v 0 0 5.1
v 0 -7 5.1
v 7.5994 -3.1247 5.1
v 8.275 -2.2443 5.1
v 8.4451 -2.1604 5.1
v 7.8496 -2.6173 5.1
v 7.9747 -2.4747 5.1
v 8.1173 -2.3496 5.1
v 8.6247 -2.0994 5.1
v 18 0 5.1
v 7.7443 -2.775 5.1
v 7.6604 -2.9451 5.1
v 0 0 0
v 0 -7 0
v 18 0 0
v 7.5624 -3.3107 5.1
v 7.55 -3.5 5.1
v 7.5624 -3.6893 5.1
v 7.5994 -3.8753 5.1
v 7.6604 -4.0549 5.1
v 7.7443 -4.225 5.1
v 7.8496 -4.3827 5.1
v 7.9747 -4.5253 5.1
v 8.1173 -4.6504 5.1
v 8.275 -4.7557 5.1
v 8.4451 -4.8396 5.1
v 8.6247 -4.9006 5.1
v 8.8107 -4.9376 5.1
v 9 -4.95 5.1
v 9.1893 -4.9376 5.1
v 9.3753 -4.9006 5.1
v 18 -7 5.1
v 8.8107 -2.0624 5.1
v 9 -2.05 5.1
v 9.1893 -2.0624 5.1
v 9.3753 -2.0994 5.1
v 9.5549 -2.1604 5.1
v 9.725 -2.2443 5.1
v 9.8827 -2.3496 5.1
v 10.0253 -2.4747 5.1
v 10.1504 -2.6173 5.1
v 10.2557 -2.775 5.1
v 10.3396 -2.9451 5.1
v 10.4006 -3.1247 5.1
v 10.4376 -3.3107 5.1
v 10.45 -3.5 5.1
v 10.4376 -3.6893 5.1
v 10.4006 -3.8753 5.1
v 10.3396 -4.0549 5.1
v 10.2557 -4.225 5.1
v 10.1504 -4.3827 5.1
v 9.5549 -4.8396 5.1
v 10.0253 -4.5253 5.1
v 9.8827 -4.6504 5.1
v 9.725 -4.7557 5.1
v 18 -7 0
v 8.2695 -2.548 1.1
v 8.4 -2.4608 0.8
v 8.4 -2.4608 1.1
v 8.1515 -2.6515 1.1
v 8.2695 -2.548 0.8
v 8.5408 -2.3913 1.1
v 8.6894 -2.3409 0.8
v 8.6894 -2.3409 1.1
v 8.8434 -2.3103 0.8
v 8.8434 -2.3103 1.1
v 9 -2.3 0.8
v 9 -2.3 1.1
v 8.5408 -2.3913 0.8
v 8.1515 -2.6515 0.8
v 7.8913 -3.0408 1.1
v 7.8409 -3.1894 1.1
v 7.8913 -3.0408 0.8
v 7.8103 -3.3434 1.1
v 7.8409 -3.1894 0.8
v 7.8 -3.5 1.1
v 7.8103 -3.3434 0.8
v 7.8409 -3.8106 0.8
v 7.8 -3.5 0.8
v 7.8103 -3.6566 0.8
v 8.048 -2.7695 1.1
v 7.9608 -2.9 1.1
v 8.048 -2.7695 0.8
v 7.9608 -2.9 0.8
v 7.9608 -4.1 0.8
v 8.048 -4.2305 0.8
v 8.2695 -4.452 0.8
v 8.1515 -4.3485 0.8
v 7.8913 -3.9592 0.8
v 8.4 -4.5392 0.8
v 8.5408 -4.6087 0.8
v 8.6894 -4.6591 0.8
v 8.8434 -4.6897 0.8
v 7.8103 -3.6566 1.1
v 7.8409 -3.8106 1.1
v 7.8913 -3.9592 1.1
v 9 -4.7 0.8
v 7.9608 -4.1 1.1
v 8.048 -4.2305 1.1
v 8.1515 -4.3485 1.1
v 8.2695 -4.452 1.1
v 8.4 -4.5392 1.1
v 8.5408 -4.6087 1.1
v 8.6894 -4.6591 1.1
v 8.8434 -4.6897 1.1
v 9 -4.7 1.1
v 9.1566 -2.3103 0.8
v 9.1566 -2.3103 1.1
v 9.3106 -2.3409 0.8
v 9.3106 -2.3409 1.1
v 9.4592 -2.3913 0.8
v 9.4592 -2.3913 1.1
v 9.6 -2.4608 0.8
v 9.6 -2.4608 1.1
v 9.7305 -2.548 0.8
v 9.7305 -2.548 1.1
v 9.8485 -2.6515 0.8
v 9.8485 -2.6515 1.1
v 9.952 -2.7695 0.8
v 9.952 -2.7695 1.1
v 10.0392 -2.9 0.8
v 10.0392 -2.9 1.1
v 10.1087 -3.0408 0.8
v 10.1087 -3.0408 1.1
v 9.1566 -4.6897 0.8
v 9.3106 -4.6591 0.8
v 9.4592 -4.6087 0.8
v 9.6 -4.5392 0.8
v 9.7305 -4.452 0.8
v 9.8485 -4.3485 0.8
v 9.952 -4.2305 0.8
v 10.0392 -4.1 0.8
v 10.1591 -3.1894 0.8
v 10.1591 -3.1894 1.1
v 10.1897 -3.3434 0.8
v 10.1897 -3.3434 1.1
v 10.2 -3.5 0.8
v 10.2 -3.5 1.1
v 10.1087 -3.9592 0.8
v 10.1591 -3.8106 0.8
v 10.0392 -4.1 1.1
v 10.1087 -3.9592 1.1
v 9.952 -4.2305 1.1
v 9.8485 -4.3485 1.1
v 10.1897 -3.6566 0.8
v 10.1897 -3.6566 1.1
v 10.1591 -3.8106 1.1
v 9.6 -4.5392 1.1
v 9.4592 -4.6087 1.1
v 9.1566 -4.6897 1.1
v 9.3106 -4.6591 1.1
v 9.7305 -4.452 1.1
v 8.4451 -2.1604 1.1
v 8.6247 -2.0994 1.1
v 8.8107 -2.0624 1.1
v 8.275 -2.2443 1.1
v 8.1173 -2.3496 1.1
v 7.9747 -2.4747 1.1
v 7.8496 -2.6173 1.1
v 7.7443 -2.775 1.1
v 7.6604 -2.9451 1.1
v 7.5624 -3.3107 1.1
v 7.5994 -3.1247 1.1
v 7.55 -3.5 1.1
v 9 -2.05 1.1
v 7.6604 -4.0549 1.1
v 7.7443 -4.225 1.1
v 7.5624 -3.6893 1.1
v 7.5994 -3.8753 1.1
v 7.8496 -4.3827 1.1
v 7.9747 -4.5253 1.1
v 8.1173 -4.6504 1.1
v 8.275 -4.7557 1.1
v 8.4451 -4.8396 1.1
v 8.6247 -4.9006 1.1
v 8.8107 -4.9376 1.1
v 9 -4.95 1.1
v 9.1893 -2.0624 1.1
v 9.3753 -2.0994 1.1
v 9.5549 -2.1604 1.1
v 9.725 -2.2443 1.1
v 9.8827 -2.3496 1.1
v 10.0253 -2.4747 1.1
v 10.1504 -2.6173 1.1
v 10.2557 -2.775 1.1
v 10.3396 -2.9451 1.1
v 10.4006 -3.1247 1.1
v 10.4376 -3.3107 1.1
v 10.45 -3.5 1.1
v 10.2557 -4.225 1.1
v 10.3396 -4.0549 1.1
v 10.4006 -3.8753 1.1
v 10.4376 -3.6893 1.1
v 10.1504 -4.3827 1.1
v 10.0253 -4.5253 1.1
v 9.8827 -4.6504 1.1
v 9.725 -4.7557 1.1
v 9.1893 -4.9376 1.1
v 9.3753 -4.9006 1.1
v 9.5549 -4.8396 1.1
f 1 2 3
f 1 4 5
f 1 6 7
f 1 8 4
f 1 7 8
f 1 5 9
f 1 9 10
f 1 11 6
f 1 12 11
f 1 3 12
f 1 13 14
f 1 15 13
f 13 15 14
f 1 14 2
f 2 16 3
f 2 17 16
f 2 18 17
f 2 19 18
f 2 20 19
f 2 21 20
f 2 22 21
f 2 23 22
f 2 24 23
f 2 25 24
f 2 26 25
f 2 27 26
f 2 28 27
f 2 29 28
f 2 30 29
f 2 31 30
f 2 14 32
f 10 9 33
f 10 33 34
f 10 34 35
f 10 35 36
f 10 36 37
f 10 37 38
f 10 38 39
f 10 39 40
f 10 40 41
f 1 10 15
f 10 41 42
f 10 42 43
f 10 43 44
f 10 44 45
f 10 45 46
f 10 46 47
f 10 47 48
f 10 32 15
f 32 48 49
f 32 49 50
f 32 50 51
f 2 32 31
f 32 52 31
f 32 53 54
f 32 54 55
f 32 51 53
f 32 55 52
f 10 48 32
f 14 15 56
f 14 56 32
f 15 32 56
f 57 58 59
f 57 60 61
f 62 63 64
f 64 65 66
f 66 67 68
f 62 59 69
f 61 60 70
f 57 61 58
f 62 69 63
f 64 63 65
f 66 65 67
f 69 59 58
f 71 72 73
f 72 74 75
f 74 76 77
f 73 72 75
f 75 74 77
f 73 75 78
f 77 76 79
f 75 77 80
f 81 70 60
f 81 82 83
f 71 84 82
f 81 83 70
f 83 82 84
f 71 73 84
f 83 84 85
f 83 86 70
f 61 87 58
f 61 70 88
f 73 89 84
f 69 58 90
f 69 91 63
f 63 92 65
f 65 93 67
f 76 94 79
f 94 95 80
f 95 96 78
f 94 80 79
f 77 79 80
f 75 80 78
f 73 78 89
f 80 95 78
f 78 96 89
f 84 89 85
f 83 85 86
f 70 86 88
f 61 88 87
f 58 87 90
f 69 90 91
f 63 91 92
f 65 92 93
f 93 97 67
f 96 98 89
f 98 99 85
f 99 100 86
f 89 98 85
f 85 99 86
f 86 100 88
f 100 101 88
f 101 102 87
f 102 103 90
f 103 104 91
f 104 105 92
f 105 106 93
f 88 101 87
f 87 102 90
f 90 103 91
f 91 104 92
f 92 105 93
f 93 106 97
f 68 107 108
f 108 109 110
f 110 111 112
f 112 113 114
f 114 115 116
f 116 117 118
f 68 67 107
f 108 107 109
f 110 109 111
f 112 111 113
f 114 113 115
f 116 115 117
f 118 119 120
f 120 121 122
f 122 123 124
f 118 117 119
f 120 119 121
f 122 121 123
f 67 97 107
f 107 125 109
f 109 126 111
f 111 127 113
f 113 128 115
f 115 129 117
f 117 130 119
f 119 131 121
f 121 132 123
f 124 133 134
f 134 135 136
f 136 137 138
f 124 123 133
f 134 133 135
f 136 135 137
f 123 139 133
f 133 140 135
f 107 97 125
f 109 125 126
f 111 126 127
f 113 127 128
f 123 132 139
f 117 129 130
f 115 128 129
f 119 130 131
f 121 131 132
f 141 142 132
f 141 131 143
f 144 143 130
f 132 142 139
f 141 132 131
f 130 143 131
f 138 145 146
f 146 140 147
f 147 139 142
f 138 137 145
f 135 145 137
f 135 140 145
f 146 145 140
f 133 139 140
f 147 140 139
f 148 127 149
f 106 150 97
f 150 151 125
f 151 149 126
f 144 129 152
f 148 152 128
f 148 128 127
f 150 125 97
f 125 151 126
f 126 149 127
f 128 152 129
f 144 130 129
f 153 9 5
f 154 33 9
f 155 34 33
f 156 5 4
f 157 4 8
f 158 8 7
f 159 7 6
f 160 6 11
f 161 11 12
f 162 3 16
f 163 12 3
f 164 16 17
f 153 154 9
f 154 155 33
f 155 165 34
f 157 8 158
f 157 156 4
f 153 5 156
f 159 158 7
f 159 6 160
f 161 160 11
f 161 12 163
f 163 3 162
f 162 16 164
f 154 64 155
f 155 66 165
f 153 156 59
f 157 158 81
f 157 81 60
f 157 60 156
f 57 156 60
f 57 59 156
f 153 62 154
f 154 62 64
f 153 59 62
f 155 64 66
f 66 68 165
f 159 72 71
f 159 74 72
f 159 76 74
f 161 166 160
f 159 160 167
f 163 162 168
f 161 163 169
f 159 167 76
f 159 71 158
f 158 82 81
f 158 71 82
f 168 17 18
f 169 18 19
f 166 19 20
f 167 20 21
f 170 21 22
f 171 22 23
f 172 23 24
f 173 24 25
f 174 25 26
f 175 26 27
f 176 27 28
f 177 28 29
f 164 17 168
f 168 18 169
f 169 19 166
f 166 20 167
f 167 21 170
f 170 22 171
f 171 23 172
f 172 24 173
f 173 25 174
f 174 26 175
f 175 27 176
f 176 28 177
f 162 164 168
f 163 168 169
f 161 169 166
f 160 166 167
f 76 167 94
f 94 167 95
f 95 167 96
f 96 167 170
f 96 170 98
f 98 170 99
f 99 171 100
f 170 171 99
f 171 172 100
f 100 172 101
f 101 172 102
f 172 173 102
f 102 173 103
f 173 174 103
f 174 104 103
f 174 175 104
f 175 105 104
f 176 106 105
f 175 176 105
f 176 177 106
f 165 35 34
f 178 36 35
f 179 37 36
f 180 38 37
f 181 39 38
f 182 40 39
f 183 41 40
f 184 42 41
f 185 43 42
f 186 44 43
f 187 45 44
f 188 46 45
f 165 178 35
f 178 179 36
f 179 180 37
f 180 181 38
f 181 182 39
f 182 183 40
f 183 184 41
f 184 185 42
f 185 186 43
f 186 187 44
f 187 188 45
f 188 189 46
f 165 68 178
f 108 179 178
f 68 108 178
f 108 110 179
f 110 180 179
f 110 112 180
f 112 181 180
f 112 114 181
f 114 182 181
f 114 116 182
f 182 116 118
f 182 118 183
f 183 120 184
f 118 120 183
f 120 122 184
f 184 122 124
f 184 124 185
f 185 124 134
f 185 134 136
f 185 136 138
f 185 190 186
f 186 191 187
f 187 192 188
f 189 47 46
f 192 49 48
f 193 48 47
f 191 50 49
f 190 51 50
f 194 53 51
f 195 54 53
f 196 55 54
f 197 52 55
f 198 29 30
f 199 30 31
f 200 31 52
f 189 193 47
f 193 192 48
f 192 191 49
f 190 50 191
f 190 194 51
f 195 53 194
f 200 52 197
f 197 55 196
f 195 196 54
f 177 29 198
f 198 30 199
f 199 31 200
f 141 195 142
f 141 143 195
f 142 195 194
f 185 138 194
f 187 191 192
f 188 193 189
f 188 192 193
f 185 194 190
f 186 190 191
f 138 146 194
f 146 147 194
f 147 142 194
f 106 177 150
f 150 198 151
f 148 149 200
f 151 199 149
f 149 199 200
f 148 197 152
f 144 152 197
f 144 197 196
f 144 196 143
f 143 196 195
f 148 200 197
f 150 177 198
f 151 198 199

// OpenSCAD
// file: ../../../cad/v3/hardware.scad
include <params.scad>
use <enclosure.scad>
// PROVISIONAL purchased component envelopes; not production part drawings.
module motor() {
 union() {
  translate([screw_x-6,motor_front-motor_l,motor_bottom]) cube([12,motor_l,10]);
  yrod(screw_x,motor_front-0.1,axis_z,shaft_d,shaft_l+0.1);
  for(x=[screw_x-3,screw_x+3]) translate([x-0.5,motor_front-motor_l-2,motor_bottom+4.5]) cube([1,2.1,1]);
 }
}
module shaft() { yrod(screw_x,motor_front,axis_z,shaft_d,shaft_l); }
module drive_nut(t=0) {
 difference() {
  translate([screw_x,carriage_back+t+nut_slot_y+0.1,axis_z]) rotate([-90,0,0]) union() {
   cylinder(d=nut_af/cos(30),h=nut_height,$fn=6);
   cylinder(d=nut_flange_d,h=nut_flange_t);
  }
  yrod(screw_x,carriage_back+t+nut_slot_y,axis_z,shaft_d+0.2,nut_height+0.2);
 }
}
module battery_holder(raise=0) {
 // Conservative single envelope including cell, contacts and holder.
 translate([93.2,-52,4.5+raise]) cube([22,74,21]);
}
module esp() {
 union() {
  translate([77.5,28,8.3]) cube([17.8,22.5,1.2]);
  translate([78.5,29,9.5]) cube([15.8,20.5,5]);
  translate([81.5,47,9.5]) cube([9,5,3.3]);
 }
}
module power_board() { translate([99,29,8.3]) cube([15,20,7.2]); }
module bridge_board() { translate([98.5,29,20.3]) cube([15,20,7]); }
module oled() {
 union() {
  translate([87.6,53.5,21.5]) cube([27.8,1.6,27.3]);
  translate([88.15,55.1,25]) cube([26.7,1.4,19.3]);
  translate([96.5,50.5,46]) cube([10,3,2.8]);
 }
}
module button() {
 union() {
  xrod(button_panel_x-button_body_l,button_y,button_z,button_body_d,button_body_l);
  xrod(button_panel_x,button_y,button_z,button_flange_d,2);
  xrod(button_panel_x+2,button_y,button_z,12.9,button_face_l-2);
  // Candidate fastening nut envelope; actual nut diameter/thickness to measure.
  difference() {
   xrod(button_panel_x-6,button_y,button_z,17.8,3);
   xrod(button_panel_x-6.1,button_y,button_z,button_hole_d,3.2);
  }
  // Two terminals only; solder and bend radius need physical confirmation.
  for(y=[button_y-2.425,button_y+2.425])
   translate([button_panel_x-button_body_l-button_terminal_l,y-.3,button_z-1]) cube([button_terminal_l,.6,2]);
 }
}
module acrylic() { translate([window_x0-2,window_y0-2,window_pane_z]) cube([window_x1-window_x0+4,window_y1-window_y0+4,window_pane_t]); }
module hinge_pin() { xrod(hinge_pin_x,hinge_y,hinge_z,2,hinge_pin_len); }
module thread_insert(x,y,z) {
 difference() {
  zhole(x,y,z,insert_od,insert_len);
  zhole(x,y,z-.1,2.05,insert_len+.2);
 }
}
module inserts_fixed() {
 for(p=battery_screws) thread_insert(p[0],p[1],2.9);
 for(x=keeper_x) thread_insert(x,keeper_y,44.3);
}
module inserts_lid() {
 for(p=window_clamps) thread_insert(p[0],p[1],window_ear_top);
}
module battery_connector() { translate([91.5,22,12.5]) cube([4.3,5,5]); }
module motor_pads() {
 // 0.3 mm compressed adhesive shim specification, not unspecified empty space.
 translate([78.5,motor_front-motor_l+.1,motor_bottom-0.3]) cube([12,motor_l-.2,0.3]);
 translate([78.5,motor_front-motor_l+.1,motor_top]) cube([12,motor_l-.2,0.3]);
 difference() {
  translate([78.5,-15,motor_bottom]) cube([12,0.3,10]);
  yrod(screw_x,-15.1,axis_z,4.7,0.6);
 }
 // Rear pad clears the two solder terminals.
 difference() {
  translate([78.5,motor_front-motor_l-.3,motor_bottom]) cube([12,0.3,10]);
  translate([80,motor_front-motor_l-.4,motor_bottom+4]) cube([9,0.5,2]);
 }
}
module board_pads() {
 translate([77.5,28,7.4]) cube([17.8,22.5,0.9]);
 translate([99,29,7.4]) cube([15,20,0.9]);
 translate([98.5,29,19.8]) cube([15,20,0.5]);
}

// Illustrative screw envelopes. Intentional pilot-thread interference is excluded
// from solid collision assertions. They remain in preview, BOM and total bounds.
module screw_down(x,y,top,len,d=2,flush=false) {
 color([0.45,0.47,0.5]) {
  zhole(x,y,top-len,d,len);
  if(flush) translate([x,y,top-1.3]) cylinder(d1=d,d2=4,h=1.3);
  else zhole(x,y,top,d==3?5.5:3.6,d==3?2:1.4);
 }
}
// Canonical fastener table: x,y,z,length,diameter,flush,rotationX,headless,owners.
// Preview and interference verification consume this SAME table.
// Stable connection names: keep existing names when adapting module brackets.
function fastener_ids(kind="fixed") = kind=="drive" ? ["F-nut-cap-left","F-nut-cap-right"] :
 kind=="lid" ? ["F-latch-left","F-latch-right","F-window-rear-left","F-window-rear-right","F-window-front-left","F-window-front-right"] :
 ["F-lock-rear-left","F-lock-rear-right","F-lock-front-left","F-lock-front-right",
 "F-guide-rear-left","F-guide-rear-right","F-guide-front","F-motor-left","F-motor-right",
 "F-tray-left","F-tray-right","F-deck-left","F-deck-right","F-esp-left","F-esp-right",
 "F-driver-left","F-driver-right","F-oled-left","F-oled-right",
 "F-battery-rear-left","F-battery-rear-right","F-battery-front-left","F-battery-front-right",
 "F-hinge-left","F-hinge-right"];
function fastener_specs(kind="fixed",t=0) = kind=="drive" ?
 [for(x=[screw_x-4.5,screw_x+4.5]) [x,carriage_back+t-0.2,46,6,2,false,0,false,["nut_cap","nut_carriage"]]] :
 kind=="lid" ? concat(
 [for(x=[93.5,112.5]) [x,8.5,45.2,8,3,false,180,false,["latch_retainer","lid"]]],
 [for(p=window_clamps) [p[0],p[1],window_inner_z,6,2,true,180,false,["window_grille","lid"]]]) :
 concat(
 [for(p=lock_mounts) [p[0],p[1],32.4,6,2,false,0,false,["lock_base","base_box"]]],
 [for(p=guide_screws) [p[0],p[1],44.9,8,2,false,0,false,["guide_cap","lock_base"]]],
 [for(p=motor_screws) [p[0],p[1],motor_clamp_z+2,8,2,false,0,false,["motor_clamp","lock_base"]]],
 [for(p=tray_screws) [p[0],p[1],7.4,4,2,false,0,false,["electronics_tray","base_box"]]],
 [for(p=deck_screws) [p[0],p[1],19.8,6,2,false,0,false,["upper_deck","electronics_tray"]]],
 [for(x=[76.2,96.7]) [x,39,16.8,6,2,false,0,false,["esp_clip","electronics_tray"]]],
 [for(x=[97,115]) [x,38,29.6,6,2,false,0,false,["upper_clip","upper_deck"]]],
 [for(x=[86.8,115.8]) [x,56.3,51,6,2,true,0,false,["oled_bridge","base_box"]]],
 [for(p=battery_screws) [p[0],p[1],0,8,2,true,180,false,["battery_hatch","base_box"]]],
 [for(i=[0:1]) [keeper_x[i],keeper_y,51.1,6,2,true,0,false,[i==0?"hinge_guard_left":"hinge_guard_right","base_box","inserts_fixed"]]]);
module render_screw(s) {
 translate([s[0],s[1],s[2]]) rotate([s[6],0,0])
 if(s[7]) zhole(0,0,-s[3],s[4],s[3]);
 else screw_down(0,0,0,s[3],s[4],s[5]);
}
module fixed_fasteners() { for(s=fastener_specs("fixed")) render_screw(s); }
module moving_fasteners(t=0) { for(s=fastener_specs("drive",t)) render_screw(s); }
module lid_fasteners() { for(s=fastener_specs("lid")) render_screw(s); }
// file: ../../../cad/v3/electronics.scad
include <params.scad>

module electronics_tray() {
 nominal_difference() {
  union() {
   cube_at([74.5,25.5,5.4],[42,27,2]);
   cube_at([74.5,25.5,7.3],[2.5,27,0.7]);
   cube_at([114,25.5,7.3],[2.5,27,0.7]);
   for(p=deck_screws) translate([p[0],p[1],7.3]) cylinder(r=1.3,h=10.7);
   for(x=[76.2,96.7]) cube_at([x-1.2,37,7.3],[2.4,4,7.5]);
  }
  for(p=tray_screws) pilot(p,5.2,8.2,2.4);
  for(x=[90,117]) zhole(x,24,5.2,6.4,3.2);
  for(p=deck_screws) pilot(p,13,18.2,1.7);
  for(x=[76.2,96.7]) zhole(x,39,9.8,1.7,5.2);
  // Tie slots for the lower power board; underside remains accessible off-box.
  for(x=[99.5,112.75]) cube_at([x,33,5.2],[tie_slot_width,8,3.2]);
 }
}
module upper_deck() {
 nominal_difference() {
  union() {
   cube_at([96,25.3,18],[21,27.2,1.8]);
   cube_at([96,27,19.7],[2.3,24,1.8]);
   cube_at([114.3,27,19.7],[2.7,24,1.8]);
   for(x=[97,115]) cube_at([x-1.3,36,19.7],[2.6,4,7.9]);
  }
  for(p=deck_screws) pilot(p,17.8,20,2.4);
  zhole(96.7,39,17.8,4,0.6);
  for(x=[97,115]) zhole(x,38,22.3,1.7,5.5);
 }
}
module esp_clip() {
 nominal_difference() {
  cube_at([74.5,37,14.8],[24,4,2]);
  for(x=[76.2,96.7]) zhole(x,39,14.6,2.4,2.4);
 }
}
module upper_clip() {
 nominal_difference() {
  cube_at([95.5,36,27.6],[21.5,4,2]);
  for(x=[97,115]) zhole(x,38,27.4,2.2,2.4);
 }
}
module oled_bridge() {
 nominal_difference() {
  cube_at([84.3,52.5,49.2],[34,6.1,1.8]);
  for(x=[86.8,115.8]) {
   zhole(x,56.3,49,2.4,2.2);
   countersink(x,56.3,49.7,2.4,4,1.3);
  }
 }
}
// file: ../../../cad/v3/lock.scad
include <params.scad>

module lock_base() {
 nominal_difference() {
  union() {
   cube_at([75,-46,lock_floor],[41,68,3]);
   // Continuous independent bolt support: bed, keyed rail, removable roof.
   cube_at([91,-19,lock_floor_top],[20,24.5,guide_bottom-lock_floor_top]);
   cube_at([bolt_x-key_w/2,-19,key_z0],[key_w,24.5,key_z1-key_z0]);
   for(p=guide_screws) translate([p[0],p[1],lock_floor_top-0.01]) cylinder(r=2.3,h=guide_top-lock_floor_top+0.01);
   for(p=motor_screws) translate([p[0],p[1],lock_floor_top-0.01]) cylinder(r=2.2,h=motor_clamp_z-lock_floor_top+0.01);
   // Motor cradle and front locating shoulder; clamp presses through thin pads.
   cube_at([77.2,-41.8,32.4],[14.6,27.5,motor_bottom-0.3-32.4]);
   cube_at([77.2,-16,32.4],[14.6,2.3,motor_clamp_z-32.4]);
   // Blind front socket: usable bore ends Y=19.8; last 1 mm is solid.
   cube_at([bolt_x-6,14.8,32.4],[12,6,11.6]);
  }
  // Conservative 25x12x10 body; includes the 2.5mm output offset.
  cube_at([screw_x-motor_w/2-0.3,motor_front-motor_l-0.3,motor_bottom-0.3],[motor_w+0.6,motor_l+0.6,motor_h+0.6]);
  yhole(screw_x,-16.3,axis_z,4.7,4);
  // Top-open U seat permits vertical insertion of motor + threaded drive.
  cube_at([screw_x-2.35,-16.3,axis_z],[4.7,4,motor_clamp_z-axis_z+0.2]);
  cube_at([bolt_x-latch_hole/2,13.8,axis_z-latch_hole/2],[latch_hole,6,latch_hole]);
  for(p=lock_mounts) pilot(p,29.2,32.6,2.4);
  for(p=guide_screws) pilot(p,33.2,43.1);
  for(p=motor_screws) pilot(p,motor_clamp_z-6,motor_clamp_z+0.2);
  // Flat reusable rail for future mechanical feedback adapters (SKU pending).
  for(y=[-12,2]) for(x=[112,115]) cube_at([x,y,29.2],[tie_slot_width,5,3.5]);
  // Wiring channels; no closed tunnel around the actuator.
  cube_at([110,15,29.2],[3,7.2,3.5]);
 }
}
module guide_cap() {
 nominal_difference() {
  cube_at([92,-20.5,guide_top],[23,26,guide_cap_t]);
  for(p=guide_screws) pilot(p,42.7,45.1,2.4);
 }
}
module motor_clamp() {
 nominal_difference() {
  cube_at([73.8,-35,motor_clamp_z],[21.4,16,2]);
  for(p=motor_screws) pilot(p,motor_clamp_z-0.2,motor_clamp_z+2.2,2.4);
  cube_at([90.8,-20.7,motor_clamp_z-0.2],[4.6,1.8,2.4]);
 }
}
module bolt_raw(t=0) {
 rear=bolt_back+t;
 nominal_difference() {
  union() {
   cube_at([bolt_x-body_w/2,rear-4,axis_z-body_w/2],[body_w,body_l+4,body_w]);
   cube_at([bolt_x-3,rear+body_l,axis_z-3],[6,tongue_l-taper_l+0.01,6]);
   translate([bolt_x,rear+body_l+tongue_l-taper_l,axis_z]) rotate([-90,0,0])
    linear_extrude(height=taper_l,scale=5/6) square([6,6],center=true);
   // Fork overlaps the main body; lateral/vertical float around the drive finger.
   cube_at([92,rear,axis_z-body_w/2],[7.6,6,body_w]);
  }
  cube_at([91,rear+1.7,35.2],[8.6,2.6,5.6]);
  cube_at([bolt_x-(key_w+0.6)/2,rear-4.1,33.2],[key_w+0.6,body_l+4.2,1.6]);
 }
}
module bolt(t=0,shift=0) { translate([0,0,shift]) bolt_raw(t); }
module nut_carriage(t=0) {
 rear=carriage_back+t;
 nominal_difference() {
  union() {
   cube_at([screw_x-7,rear-2,33.4],[13,10,10.6]);
   cube_at([screw_x+4.5,rear-1.5,36],[8.7,2,4]);
  }
  yhole(screw_x,rear-3,axis_z,shaft_d+0.4,12);
  translate([screw_x,rear+nut_slot_y,axis_z]) rotate([-90,0,0]) {
   cylinder(d=nut_slot_d,h=nut_slot_t,$fn=6);
   cylinder(d=nut_flange_d+0.4,h=nut_flange_t+0.2);
  }
  // Wide open top access for the nut: larger than its circumdiameter.
  cube_at([screw_x-5.3,rear+nut_slot_y,axis_z],[10.6,nut_slot_t,6.2]);
  for(x=[screw_x-4.5,screw_x+4.5]) zhole(x,rear-0.2,39.5,1.7,4.7);
 }
}
module nut_cap(t=0) {
 rear=carriage_back+t;
 nominal_difference() {
  cube_at([screw_x-6.5,rear-2,44],[12.5,10,2]);
  for(x=[screw_x-4.5,screw_x+4.5]) zhole(x,rear-0.2,43.8,2.4,2.4);
 }
}
module fit_bar() { cube([tongue_w,tongue_w,25]); }
module fit_gauge() {
 nominal_difference() {
  cube([30,14,8]);
  for(i=[0:2]) cube_at([2+i*9,3,-0.1],[6.4+i*0.2,6.4+i*0.2,8.2]);
 }
}
// file: ../../../cad/v3/enclosure.scad
include <params.scad>

module base_box() {
 nominal_difference() {
  union() {
   nominal_difference() {
    linear_extrude(height=shell_top) rounded_rect(L,W,4);
    translate([0,0,floor_t]) linear_extrude(height=49) rounded_rect(L-2*wall,W-2*wall,1);
   }
   cube_at([70.5,-57,2.9],[3,114,48.1]);
   // Stationary rear header reaches the same closed height as the lid.
   intersection() {
    cube_at([-117,-60,47],[234,9,8]);
    union() { cube_at([-118,-61,46],[236,11,5]); xrod(-118,hinge_y,hinge_z,8,236); }
   }
   for(k=fixed_knuckles) xrod(k[0],hinge_y,hinge_z,hinge_od,k[1]-k[0]);
   for(x=keeper_x) cube_at([x-4,-54,43.5],[8,6.5,4.8]);
   // Battery chamber: side/end walls and a fixed ceiling connected to outer wall.
   cube_at([90,-54.5,2.9],[2.7,79,23.1]);
   cube_at([90,-54.5,2.9],[30,2.2,23.1]);
   cube_at([90,22.3,2.9],[30,2.2,23.1]);
   cube_at([90,-54.5,26],[30,79,3.4]);
   for(p=battery_screws) translate([p[0],p[1],2.8]) cylinder(r=3,h=5.5);
   for(p=lock_mounts) if(p[0]<90) translate([p[0],p[1],2.9]) cylinder(r=3,h=26.5);
   for(p=tray_screws) translate([p[0],p[1],2.9]) cylinder(r=2.3,h=2.5);
   // OLED bottom stop and two connected side rails.
   cube_at([85.3,53,19.2],[32.4,4.1,2]);
   cube_at([85.3,53,21.1],[2.3,4.1,28.1]);
   cube_at([115.4,53,21.1],[2.3,4.1,28.1]);
   // Recessed side-wall panel: 5.7mm button face stays inside X=120.
   difference() {
    xrod(button_panel_x-3,button_y,button_z,21,120-(button_panel_x-3));
    xrod(button_panel_x,button_y,button_z,18.8,120-button_panel_x+.1);
   }

  }
  // A continuous bore is essential: otherwise the fixed header traps the pin.
  xhole(-120.1,hinge_y,hinge_z,hinge_bore,240.2);
  // Moving hinge knuckles and webs get a rectangular swept-side relief.
  for(k=moving_knuckles) cube_at([k[0]-0.3,-60.2,46.6],[k[1]-k[0]+0.6,9.8,9]);
  for(x=keeper_x) {
   cube_at([x-4.3,-58.3,48.3],[8.6,11.1,7]);
   zhole(x,keeper_y,43.8,2.4,4.6);
   let($feature_kind="insert") zhole(x,keeper_y,44.2,insert_hole_d(),4.2);
  }
  // Battery extraction aperture, and a shallow seat for the flush service plate.
  cube_at([92.7,-52.3,-0.1],[22.6,74.6,8.6]);
  cube_at([87.7,-56.3,-0.1],[31.6,82.6,3]);
  for(p=battery_screws) {
   pilot(p,2.7,8.4,2.4);
   let($feature_kind="insert") zhole(p[0],p[1],2.8,insert_hole_d(),4.1);
  }
  for(p=lock_mounts) pilot(p,26.2,29.6,1.7);
  for(p=tray_screws) pilot(p,3.1,5.6,1.7);
  // Battery connector passage enters the electronics bay, not the actuator above.
  cube_at([91,21.8,12],[7,3.4,6]);
  // Front optical window / recessed button. There is deliberately no USB hole.
  cube_at([87.7,56.7,24.5],[27.6,3.6,20.5]);
  xhole(button_panel_x-3.1,button_y,button_z,button_hole_d,3.2);
  xhole(button_panel_x,button_y,button_z,18.8,120-button_panel_x+.1);
  // PCB insertion channels; stop ledge remains below them.
  cube_at([87.3,53.2,21.3],[28.4,2.2,28.2]);
  cube_at([84.2,52.4,49.2],[34.2,6.3,1.9]);
  for(x=[86.8,115.8]) zhole(x,56.3,43,1.7,6.5);
 }
}
module lid() {
 union() {
 nominal_difference() {
  union() {
   cube_at([-120,-50.5,lid_bottom],[240,110.5,H-lid_bottom]);
   for(k=moving_knuckles) {
    xrod(k[0],hinge_y,hinge_z,hinge_od,k[1]-k[0]);
    cube_at([k[0],-53,51.4],[k[1]-k[0],4,3.6]);
   }
   // Internal T-head receiver and inside-only retainer screw lands.
   cube_at([92,3,46.7],[22,11,4.8]);
   // Inside-only hard stops carry screw preload instead of crushing the pane.
   for(p=window_clamps) cube_at([p[0]-9,p[1]-3.5,window_ear_top],[18,7,lid_bottom+0.1-window_ear_top]);
  }
  for(k=moving_knuckles) xhole(k[0]-0.1,hinge_y,hinge_z,hinge_bore,k[1]-k[0]+0.2);
  cube_at([window_x0,window_y0,window_ear_top-0.1],[window_x1-window_x0,window_y1-window_y0,H-window_ear_top+0.2]);
  // Interior rebate clears the pane; the outside grille closes it.
  cube_at([window_x0-3,window_y0-3,window_ear_top-0.1],[window_x1-window_x0+6,window_y1-window_y0+6,window_outer_z-window_ear_top+0.1]);
  cube_at([94.7,5.7,46.6],[16.6,5.6,3.7]);
  cube_at([97.2,5.7,45.8],[11.6,5.6,4.5]);
  for(x=[93.5,112.5]) zhole(x,8.5,45.8,2.4,8.4);
  for(p=window_clamps) {
   zhole(p[0],p[1],window_ear_top-0.1,2.4,54.2-window_ear_top+0.1);
   let($feature_kind="insert") zhole(p[0],p[1],window_ear_top-0.1,insert_hole_d(),4.1);
  }
 }
 // Union after cutting the opening: five short-span ribs join both edges.
 translate([0,0,window_outer_z]) linear_extrude(height=H-window_outer_z) window_grid_2d();
 }
}
module latch() {
 nominal_difference() {
  union() {
   cube_at([bolt_x-5.5,latch_y,latch_z0],[11,5,43.1-latch_z0]);
   cube_at([bolt_x-latch_neck_w/2,latch_y,43],[latch_neck_w,5,2.1]);
   cube_at([bolt_x-5.5,latch_y,45],[11,5,2.1]);
   cube_at([bolt_x-8,latch_y,47],[16,5,3]);
  }
  cube_at([bolt_x-latch_hole/2,latch_y-0.1,axis_z-latch_hole/2],[latch_hole,5.2,latch_hole]);
 }
}
module latch_retainer() {
 nominal_difference() {
  cube_at([92,3,retainer_z],[22,11,retainer_t]);
  cube_at([97.2,5.7,45],[11.6,5.6,2]);
  for(x=[93.5,112.5]) zhole(x,8.5,45,3.4,2);
 }
}
module window_grid_2d() {
 union() {
  nominal_difference() {
   translate([window_x0-3,window_y0-3]) square([window_x1-window_x0+6,window_y1-window_y0+6]);
   translate([window_x0,window_y0]) square([window_x1-window_x0,window_y1-window_y0]);
  }
  for(x=window_bar_x) {
   translate([x-window_bar_w/2,window_y0-2]) square([window_bar_w,window_y1-window_y0+4]);
   // Concave radius at all four rib roots, tangent to rib and window frame.
   for(side=[-1,1]) for(end=[0,1])
    translate([x+side*window_bar_w/2,end?window_y1:window_y0]) scale([side,end?-1:1])
     nominal_difference() { square([window_root_r,window_root_r]); translate([window_root_r,window_root_r]) circle(r=window_root_r); }
  }
 }
}
module window_grille() {
 nominal_difference() {
  union() {
   translate([0,0,window_inner_z]) linear_extrude(height=window_inner_t) window_grid_2d();
   for(p=window_clamps) cube_at([p[0]-9,p[1]-3.5,window_inner_z],[18,7,window_ear_t]);
  }
  for(p=window_clamps) {
   zhole(p[0],p[1],window_inner_z-0.1,2.4,window_inner_t+0.2);
   countersink(p[0],p[1],window_inner_z-0.01,4.2,2.4,1.31);
  }
 }
}
module battery_hatch() {
 nominal_difference() {
  union() {
   cube_at([88,-56,0],[31,82,2.6]);
   for(x=[96,112]) for(y=[-47,17]) cube_at([x-2,y-2,2.5],[4,4,1.8]);
  }
  for(p=battery_screws) {
   pilot(p,-0.1,2.8,2.4);
   countersink(p[0],p[1],-0.01,4.2,2.4,1.3);
  }
 }
}
module hinge_guard(side=-1) {
 x=side<0?keeper_x[0]:keeper_x[1];
 stop=side<0?hinge_pin_x-pin_end_play-keeper_wall:hinge_pin_x+hinge_pin_len+pin_end_play;
 nominal_difference() {
  union() {
   intersection() {
    union() {
     cube_at([x-4,-58,53],[8,7.2,2]);
     cube_at([x-4,-52,48.3],[8,1.2,6.7]);
     // End cheek remains within the fixed hinge's radial envelope.
     cube_at([stop,-58,48.3],[keeper_wall,6,6.7]);
    }
    xrod(x-4.1,hinge_y,hinge_z,8.4,8.2);
   }
   cube_at([x-4,-53.6,48.3],[8,6.1,2.8]);
  }
  zhole(x,keeper_y,48.1,2.4,3.2);
  countersink(x,keeper_y,49.8,2.4,4,1.3);
  zhole(x,keeper_y,51.09,4.2,4);
 }
}

module insert_coupon() {
 nominal_difference() {
  cube([36,12,6]);
  for(i=[0:2]) {
   zhole(6+i*12,6,1.8,2.8+i*.1,4.3);
   countersink(6+i*12,6,5.6,2.8+i*.1,3.5,.5);
  }
 }
}
module keeper_insert_coupon() {
 nominal_difference() {
  cube([8,6.5,4.8]);
  zhole(4,3.5,.3,2.4,4.6);
  zhole(4,3.5,.7,insert_pilot_d,4.2);
 }
}
module window_insert_coupon() {
 nominal_difference() {
  cube([18,7,5.1]);
  zhole(9,3.5,-.1,2.4,4.4);
  zhole(9,3.5,-.1,insert_pilot_d,4.1);
 }
}
module hinge_bore_coupon() {
 nominal_difference() {
  cube([20,30,8]);
  for(i=[0:2]) xhole(-.1,5+i*10,4,2.2+i*.2,20.2);
 }
}
// file: ../../../cad/v3/references.scad
// Generated from engineering/references.json; do not edit.
// SHA256 f9069af00d99415f6bf80c07423463d1202e891299ade11124e069a9ba9990c0
// Visual corner/platform profiles are approximate. Dimensions are nominal mm.
module reference_phone() {
 translate([-23,0,0]) union() {
  translate([0,0,9.43]) linear_extrude(height=8.75)
   offset(r=12) square([139.4,54.0],center=true);
  translate([-55.7,0,6.88])
   linear_extrude(height=2.55) offset(r=9) square([28,56],center=true);
  translate([-67.33,-24.630000000000003,5]) cylinder(d=16.2,h=1.88,$fn=64);
  translate([-48.09,-24.630000000000003,5]) cylinder(d=16.2,h=1.88,$fn=64);
  translate([-57.71000000000001,-6.640000000000001,5]) cylinder(d=16.2,h=1.88,$fn=64);
  translate([-50.870000000000005,-39.45,12.475]) cube([6.9,.45,2.66]);
  translate([-38.870000000000005,-39.45,12.475]) cube([11.2,.45,2.66]);
  translate([-24.67,-39.45,12.475]) cube([11.2,.45,2.66]);
  translate([-35.02,39.0,12.475]) cube([17.7,.45,2.66]);
  translate([21.56999999999999,39.0,12.475]) cube([17.1,.45,2.66]);
 }
}
module reference_card() {
 translate([-7,0,18.18])
 linear_extrude(height=0.76) offset(r=3.18)
 square([79.24,47.62],center=true);
}
// file: ../../../cad/v3/params.scad
// TetherLock V3 STRUCTURAL PROTOTYPE. mm / degrees. Hardware SKUs NOT frozen.
// World: X long direction; +Y front; Z bottom=0. Closed assembly <=240x120x55.
$fn=48;
L=240; W=120; H=55;
wall=3; floor_t=3; shell_top=51; lid_bottom=51.4;
divider_x=72; divider_t=3;
hinge_y=-55; hinge_z=51; hinge_od=8; hinge_bore=2.4;
fixed_knuckles=[[-102,-90],[-30,-18],[42,54]];
moving_knuckles=[[-89.6,-78],[-17.6,-6],[54.4,66]];
hinge_pin_x=-107; hinge_pin_len=180;
keeper_x=[-108,77.5]; keeper_y=-50.5;
pin_end_play=0.5; keeper_wall=1.5;
insert_od=3.2; insert_len=4; insert_pilot_d=2.9;
$print_bores=false;
function insert_hole_d() = $print_bores ? insert_pilot_d : insert_od+0.05;
stroke=14;
bolt_x=103; axis_z=38; bolt_back=-14.5; carriage_back=-11;
body_w=9.2; body_l=6; tongue_w=6; tongue_l=13.5; taper_l=0.8;
guide_clearance=0.3;
screw_x=84.5; motor_front=-15;
// Seller image: gearbox 9; motor text 16 vs drawing 15; reserve 25 total.
// Output offset 2.5: rotate motor about its shaft so body is ABOVE the axis.
motor_l=25; motor_w=12; motor_h=10; motor_axis_offset=2.5;
shaft_l=55; shaft_d=4; shaft_pitch=0.7; shaft_length_tolerance=1;
motor_bottom=axis_z+motor_axis_offset-motor_h/2;
motor_top=motor_bottom+motor_h; motor_clamp_z=motor_top+0.3;
// Supplier flange nut NOT dimensioned: conservative adjustable candidate.
nut_af=7; nut_flange_d=10; nut_height=5; nut_flange_t=1;
// R16-503 drawing; threaded mounting diameter remains provisional 16mm.
button_y=30; button_z=40.5; button_panel_x=114;
button_hole_d=16.4; button_body_d=15.8; button_flange_d=17.8;
button_body_l=18.3; button_terminal_l=6; button_face_l=5.7;
tie_width=2.5; tie_slot_width=3.0;
lock_floor=29.4; lock_floor_top=32.4;
guide_bottom=33.1; guide_top=42.9; guide_cap_t=2;
key_w=2.8; key_z0=33.0; key_z1=34.5;
nut_slot_d=nut_af/cos(30)+0.4; nut_slot_y=1.5; nut_slot_t=nut_height+0.4;
latch_y=6; latch_t=5; latch_hole=6.8;
latch_z0=32.6; latch_neck_w=6;
retainer_z=45.2; retainer_t=1.5;
window_x0=-100; window_x1=45; window_y0=-38; window_y1=40;
window_clamps=[[-94,-43],[39,-43],[-94,45],[39,45]];
window_bar_x=[-76,-52,-28,-4,20]; window_bar_w=5; window_root_r=2;
window_outer_z=52; window_pane_t=1.5;
window_pane_z=window_outer_z-window_pane_t;
// Pane contact and screw ears are independent: preload is carried by the ears.
window_inner_z=47.4; window_inner_t=3.1;
window_inner_top=window_inner_z+window_inner_t;
window_ear_t=2.5; window_ear_top=window_inner_z+window_ear_t;
assert(window_inner_z>=47,"Window grille must preserve storage headroom");
lock_mounts=[[77,-43],[113,-43],[77,19],[113,19]];
guide_screws=[[93.5,-18],[114,-18],[114,-2]];
motor_screws=[[76,-27],[93,-27]];
battery_screws=[[90,-54],[117,-54],[90,24],[117,24]];
tray_screws=[[76,27],[115,51]];
deck_screws=[[97.5,27],[115,50.8]];
print_parts=["base_box","lid","lock_base","guide_cap","motor_clamp",
 "bolt","nut_carriage","nut_cap","latch","latch_retainer","window_grille",
 "battery_hatch","electronics_tray","upper_deck","esp_clip","upper_clip",
 "oled_bridge","hinge_guard_left","hinge_guard_right","fit_bar","fit_gauge",
 "insert_coupon","keeper_insert_coupon","window_insert_coupon","hinge_bore_coupon"];
assembly_parts=["base_box","lid","lock_base","guide_cap","motor_clamp",
 "bolt","nut_carriage","nut_cap","latch","latch_retainer",
 "window_grille",
 "battery_hatch","electronics_tray","upper_deck","esp_clip","upper_clip","oled_bridge",
 "hinge_guard_left","hinge_guard_right"];
hardware_parts=["motor","drive_nut","battery_holder","esp","power_board",
 "bridge_board","oled","button","acrylic","hinge_pin","inserts_fixed","inserts_lid",
 "battery_connector",
 "motor_pads","board_pads"];
// All holes below are pilot/clearance geometry, not modelled screw threads.
module feature(axis,center,d,h,kind="clearance",details=[]) {
 if(!is_undef($export_features) && $export_features)
  echo(["TL_FEATURE",$feature_part,axis,center,d,h,kind,details]);
}
// These wrappers keep CAD feature dimensions attached to the geometry that uses
// them. The boolean operation is part of the export, not guessed from a mesh.
module nominal_difference() {
 base=is_undef($feature_operation)?"solid":$feature_operation;
 difference() {
  let($feature_operation=base) children(0);
  if($children>1) for(i=[1:$children-1])
   let($feature_operation=base=="solid"?"cut":"solid") children(i);
 }
}
module cube_at(position,size) {
 feature("BOX",position,0,0,"box",[size,is_undef($feature_operation)?"solid":$feature_operation]);
 translate(position) cube(size);
}
module zhole(x,y,z,d,h) {
 feature("Z",[x,y,z],d,h,is_undef($feature_kind)?(d<2?"pilot":"clearance"):$feature_kind);
 translate([x,y,z]) cylinder(d=d,h=h);
}
module yrod(x,y,z,d,h) { translate([x,y,z]) rotate([-90,0,0]) cylinder(d=d,h=h); }
module xrod(x,y,z,d,h) { translate([x,y,z]) rotate([0,90,0]) cylinder(d=d,h=h); }
module yhole(x,y,z,d,h,kind="clearance") { feature("Y",[x,y,z],d,h,kind); yrod(x,y,z,d,h); }
module xhole(x,y,z,d,h,kind="clearance") { feature("X",[x,y,z],d,h,kind); xrod(x,y,z,d,h); }
module countersink(x,y,z,d1,d2,h) {
 feature("Z",[x,y,z],d1,h,"countersink",[d2]);
 translate([x,y,z]) cylinder(d1=d1,d2=d2,h=h);
}
module rounded_rect(l,w,r) { offset(r=r) square([l-2*r,w-2*r],center=true); }
module lid_turn(a) { translate([0,hinge_y,hinge_z]) rotate([a,0,0]) translate([0,-hinge_y,-hinge_z]) children(); }
module pilot(xy,z0,z1,d=1.7) { let($feature_kind=d<2?"pilot":"clearance") zhole(xy[0],xy[1],z0,d,z1-z0); }
// main file
include <../../../cad/v3/assembly.scad>
view="metadata";
print_part("window_insert_coupon");
